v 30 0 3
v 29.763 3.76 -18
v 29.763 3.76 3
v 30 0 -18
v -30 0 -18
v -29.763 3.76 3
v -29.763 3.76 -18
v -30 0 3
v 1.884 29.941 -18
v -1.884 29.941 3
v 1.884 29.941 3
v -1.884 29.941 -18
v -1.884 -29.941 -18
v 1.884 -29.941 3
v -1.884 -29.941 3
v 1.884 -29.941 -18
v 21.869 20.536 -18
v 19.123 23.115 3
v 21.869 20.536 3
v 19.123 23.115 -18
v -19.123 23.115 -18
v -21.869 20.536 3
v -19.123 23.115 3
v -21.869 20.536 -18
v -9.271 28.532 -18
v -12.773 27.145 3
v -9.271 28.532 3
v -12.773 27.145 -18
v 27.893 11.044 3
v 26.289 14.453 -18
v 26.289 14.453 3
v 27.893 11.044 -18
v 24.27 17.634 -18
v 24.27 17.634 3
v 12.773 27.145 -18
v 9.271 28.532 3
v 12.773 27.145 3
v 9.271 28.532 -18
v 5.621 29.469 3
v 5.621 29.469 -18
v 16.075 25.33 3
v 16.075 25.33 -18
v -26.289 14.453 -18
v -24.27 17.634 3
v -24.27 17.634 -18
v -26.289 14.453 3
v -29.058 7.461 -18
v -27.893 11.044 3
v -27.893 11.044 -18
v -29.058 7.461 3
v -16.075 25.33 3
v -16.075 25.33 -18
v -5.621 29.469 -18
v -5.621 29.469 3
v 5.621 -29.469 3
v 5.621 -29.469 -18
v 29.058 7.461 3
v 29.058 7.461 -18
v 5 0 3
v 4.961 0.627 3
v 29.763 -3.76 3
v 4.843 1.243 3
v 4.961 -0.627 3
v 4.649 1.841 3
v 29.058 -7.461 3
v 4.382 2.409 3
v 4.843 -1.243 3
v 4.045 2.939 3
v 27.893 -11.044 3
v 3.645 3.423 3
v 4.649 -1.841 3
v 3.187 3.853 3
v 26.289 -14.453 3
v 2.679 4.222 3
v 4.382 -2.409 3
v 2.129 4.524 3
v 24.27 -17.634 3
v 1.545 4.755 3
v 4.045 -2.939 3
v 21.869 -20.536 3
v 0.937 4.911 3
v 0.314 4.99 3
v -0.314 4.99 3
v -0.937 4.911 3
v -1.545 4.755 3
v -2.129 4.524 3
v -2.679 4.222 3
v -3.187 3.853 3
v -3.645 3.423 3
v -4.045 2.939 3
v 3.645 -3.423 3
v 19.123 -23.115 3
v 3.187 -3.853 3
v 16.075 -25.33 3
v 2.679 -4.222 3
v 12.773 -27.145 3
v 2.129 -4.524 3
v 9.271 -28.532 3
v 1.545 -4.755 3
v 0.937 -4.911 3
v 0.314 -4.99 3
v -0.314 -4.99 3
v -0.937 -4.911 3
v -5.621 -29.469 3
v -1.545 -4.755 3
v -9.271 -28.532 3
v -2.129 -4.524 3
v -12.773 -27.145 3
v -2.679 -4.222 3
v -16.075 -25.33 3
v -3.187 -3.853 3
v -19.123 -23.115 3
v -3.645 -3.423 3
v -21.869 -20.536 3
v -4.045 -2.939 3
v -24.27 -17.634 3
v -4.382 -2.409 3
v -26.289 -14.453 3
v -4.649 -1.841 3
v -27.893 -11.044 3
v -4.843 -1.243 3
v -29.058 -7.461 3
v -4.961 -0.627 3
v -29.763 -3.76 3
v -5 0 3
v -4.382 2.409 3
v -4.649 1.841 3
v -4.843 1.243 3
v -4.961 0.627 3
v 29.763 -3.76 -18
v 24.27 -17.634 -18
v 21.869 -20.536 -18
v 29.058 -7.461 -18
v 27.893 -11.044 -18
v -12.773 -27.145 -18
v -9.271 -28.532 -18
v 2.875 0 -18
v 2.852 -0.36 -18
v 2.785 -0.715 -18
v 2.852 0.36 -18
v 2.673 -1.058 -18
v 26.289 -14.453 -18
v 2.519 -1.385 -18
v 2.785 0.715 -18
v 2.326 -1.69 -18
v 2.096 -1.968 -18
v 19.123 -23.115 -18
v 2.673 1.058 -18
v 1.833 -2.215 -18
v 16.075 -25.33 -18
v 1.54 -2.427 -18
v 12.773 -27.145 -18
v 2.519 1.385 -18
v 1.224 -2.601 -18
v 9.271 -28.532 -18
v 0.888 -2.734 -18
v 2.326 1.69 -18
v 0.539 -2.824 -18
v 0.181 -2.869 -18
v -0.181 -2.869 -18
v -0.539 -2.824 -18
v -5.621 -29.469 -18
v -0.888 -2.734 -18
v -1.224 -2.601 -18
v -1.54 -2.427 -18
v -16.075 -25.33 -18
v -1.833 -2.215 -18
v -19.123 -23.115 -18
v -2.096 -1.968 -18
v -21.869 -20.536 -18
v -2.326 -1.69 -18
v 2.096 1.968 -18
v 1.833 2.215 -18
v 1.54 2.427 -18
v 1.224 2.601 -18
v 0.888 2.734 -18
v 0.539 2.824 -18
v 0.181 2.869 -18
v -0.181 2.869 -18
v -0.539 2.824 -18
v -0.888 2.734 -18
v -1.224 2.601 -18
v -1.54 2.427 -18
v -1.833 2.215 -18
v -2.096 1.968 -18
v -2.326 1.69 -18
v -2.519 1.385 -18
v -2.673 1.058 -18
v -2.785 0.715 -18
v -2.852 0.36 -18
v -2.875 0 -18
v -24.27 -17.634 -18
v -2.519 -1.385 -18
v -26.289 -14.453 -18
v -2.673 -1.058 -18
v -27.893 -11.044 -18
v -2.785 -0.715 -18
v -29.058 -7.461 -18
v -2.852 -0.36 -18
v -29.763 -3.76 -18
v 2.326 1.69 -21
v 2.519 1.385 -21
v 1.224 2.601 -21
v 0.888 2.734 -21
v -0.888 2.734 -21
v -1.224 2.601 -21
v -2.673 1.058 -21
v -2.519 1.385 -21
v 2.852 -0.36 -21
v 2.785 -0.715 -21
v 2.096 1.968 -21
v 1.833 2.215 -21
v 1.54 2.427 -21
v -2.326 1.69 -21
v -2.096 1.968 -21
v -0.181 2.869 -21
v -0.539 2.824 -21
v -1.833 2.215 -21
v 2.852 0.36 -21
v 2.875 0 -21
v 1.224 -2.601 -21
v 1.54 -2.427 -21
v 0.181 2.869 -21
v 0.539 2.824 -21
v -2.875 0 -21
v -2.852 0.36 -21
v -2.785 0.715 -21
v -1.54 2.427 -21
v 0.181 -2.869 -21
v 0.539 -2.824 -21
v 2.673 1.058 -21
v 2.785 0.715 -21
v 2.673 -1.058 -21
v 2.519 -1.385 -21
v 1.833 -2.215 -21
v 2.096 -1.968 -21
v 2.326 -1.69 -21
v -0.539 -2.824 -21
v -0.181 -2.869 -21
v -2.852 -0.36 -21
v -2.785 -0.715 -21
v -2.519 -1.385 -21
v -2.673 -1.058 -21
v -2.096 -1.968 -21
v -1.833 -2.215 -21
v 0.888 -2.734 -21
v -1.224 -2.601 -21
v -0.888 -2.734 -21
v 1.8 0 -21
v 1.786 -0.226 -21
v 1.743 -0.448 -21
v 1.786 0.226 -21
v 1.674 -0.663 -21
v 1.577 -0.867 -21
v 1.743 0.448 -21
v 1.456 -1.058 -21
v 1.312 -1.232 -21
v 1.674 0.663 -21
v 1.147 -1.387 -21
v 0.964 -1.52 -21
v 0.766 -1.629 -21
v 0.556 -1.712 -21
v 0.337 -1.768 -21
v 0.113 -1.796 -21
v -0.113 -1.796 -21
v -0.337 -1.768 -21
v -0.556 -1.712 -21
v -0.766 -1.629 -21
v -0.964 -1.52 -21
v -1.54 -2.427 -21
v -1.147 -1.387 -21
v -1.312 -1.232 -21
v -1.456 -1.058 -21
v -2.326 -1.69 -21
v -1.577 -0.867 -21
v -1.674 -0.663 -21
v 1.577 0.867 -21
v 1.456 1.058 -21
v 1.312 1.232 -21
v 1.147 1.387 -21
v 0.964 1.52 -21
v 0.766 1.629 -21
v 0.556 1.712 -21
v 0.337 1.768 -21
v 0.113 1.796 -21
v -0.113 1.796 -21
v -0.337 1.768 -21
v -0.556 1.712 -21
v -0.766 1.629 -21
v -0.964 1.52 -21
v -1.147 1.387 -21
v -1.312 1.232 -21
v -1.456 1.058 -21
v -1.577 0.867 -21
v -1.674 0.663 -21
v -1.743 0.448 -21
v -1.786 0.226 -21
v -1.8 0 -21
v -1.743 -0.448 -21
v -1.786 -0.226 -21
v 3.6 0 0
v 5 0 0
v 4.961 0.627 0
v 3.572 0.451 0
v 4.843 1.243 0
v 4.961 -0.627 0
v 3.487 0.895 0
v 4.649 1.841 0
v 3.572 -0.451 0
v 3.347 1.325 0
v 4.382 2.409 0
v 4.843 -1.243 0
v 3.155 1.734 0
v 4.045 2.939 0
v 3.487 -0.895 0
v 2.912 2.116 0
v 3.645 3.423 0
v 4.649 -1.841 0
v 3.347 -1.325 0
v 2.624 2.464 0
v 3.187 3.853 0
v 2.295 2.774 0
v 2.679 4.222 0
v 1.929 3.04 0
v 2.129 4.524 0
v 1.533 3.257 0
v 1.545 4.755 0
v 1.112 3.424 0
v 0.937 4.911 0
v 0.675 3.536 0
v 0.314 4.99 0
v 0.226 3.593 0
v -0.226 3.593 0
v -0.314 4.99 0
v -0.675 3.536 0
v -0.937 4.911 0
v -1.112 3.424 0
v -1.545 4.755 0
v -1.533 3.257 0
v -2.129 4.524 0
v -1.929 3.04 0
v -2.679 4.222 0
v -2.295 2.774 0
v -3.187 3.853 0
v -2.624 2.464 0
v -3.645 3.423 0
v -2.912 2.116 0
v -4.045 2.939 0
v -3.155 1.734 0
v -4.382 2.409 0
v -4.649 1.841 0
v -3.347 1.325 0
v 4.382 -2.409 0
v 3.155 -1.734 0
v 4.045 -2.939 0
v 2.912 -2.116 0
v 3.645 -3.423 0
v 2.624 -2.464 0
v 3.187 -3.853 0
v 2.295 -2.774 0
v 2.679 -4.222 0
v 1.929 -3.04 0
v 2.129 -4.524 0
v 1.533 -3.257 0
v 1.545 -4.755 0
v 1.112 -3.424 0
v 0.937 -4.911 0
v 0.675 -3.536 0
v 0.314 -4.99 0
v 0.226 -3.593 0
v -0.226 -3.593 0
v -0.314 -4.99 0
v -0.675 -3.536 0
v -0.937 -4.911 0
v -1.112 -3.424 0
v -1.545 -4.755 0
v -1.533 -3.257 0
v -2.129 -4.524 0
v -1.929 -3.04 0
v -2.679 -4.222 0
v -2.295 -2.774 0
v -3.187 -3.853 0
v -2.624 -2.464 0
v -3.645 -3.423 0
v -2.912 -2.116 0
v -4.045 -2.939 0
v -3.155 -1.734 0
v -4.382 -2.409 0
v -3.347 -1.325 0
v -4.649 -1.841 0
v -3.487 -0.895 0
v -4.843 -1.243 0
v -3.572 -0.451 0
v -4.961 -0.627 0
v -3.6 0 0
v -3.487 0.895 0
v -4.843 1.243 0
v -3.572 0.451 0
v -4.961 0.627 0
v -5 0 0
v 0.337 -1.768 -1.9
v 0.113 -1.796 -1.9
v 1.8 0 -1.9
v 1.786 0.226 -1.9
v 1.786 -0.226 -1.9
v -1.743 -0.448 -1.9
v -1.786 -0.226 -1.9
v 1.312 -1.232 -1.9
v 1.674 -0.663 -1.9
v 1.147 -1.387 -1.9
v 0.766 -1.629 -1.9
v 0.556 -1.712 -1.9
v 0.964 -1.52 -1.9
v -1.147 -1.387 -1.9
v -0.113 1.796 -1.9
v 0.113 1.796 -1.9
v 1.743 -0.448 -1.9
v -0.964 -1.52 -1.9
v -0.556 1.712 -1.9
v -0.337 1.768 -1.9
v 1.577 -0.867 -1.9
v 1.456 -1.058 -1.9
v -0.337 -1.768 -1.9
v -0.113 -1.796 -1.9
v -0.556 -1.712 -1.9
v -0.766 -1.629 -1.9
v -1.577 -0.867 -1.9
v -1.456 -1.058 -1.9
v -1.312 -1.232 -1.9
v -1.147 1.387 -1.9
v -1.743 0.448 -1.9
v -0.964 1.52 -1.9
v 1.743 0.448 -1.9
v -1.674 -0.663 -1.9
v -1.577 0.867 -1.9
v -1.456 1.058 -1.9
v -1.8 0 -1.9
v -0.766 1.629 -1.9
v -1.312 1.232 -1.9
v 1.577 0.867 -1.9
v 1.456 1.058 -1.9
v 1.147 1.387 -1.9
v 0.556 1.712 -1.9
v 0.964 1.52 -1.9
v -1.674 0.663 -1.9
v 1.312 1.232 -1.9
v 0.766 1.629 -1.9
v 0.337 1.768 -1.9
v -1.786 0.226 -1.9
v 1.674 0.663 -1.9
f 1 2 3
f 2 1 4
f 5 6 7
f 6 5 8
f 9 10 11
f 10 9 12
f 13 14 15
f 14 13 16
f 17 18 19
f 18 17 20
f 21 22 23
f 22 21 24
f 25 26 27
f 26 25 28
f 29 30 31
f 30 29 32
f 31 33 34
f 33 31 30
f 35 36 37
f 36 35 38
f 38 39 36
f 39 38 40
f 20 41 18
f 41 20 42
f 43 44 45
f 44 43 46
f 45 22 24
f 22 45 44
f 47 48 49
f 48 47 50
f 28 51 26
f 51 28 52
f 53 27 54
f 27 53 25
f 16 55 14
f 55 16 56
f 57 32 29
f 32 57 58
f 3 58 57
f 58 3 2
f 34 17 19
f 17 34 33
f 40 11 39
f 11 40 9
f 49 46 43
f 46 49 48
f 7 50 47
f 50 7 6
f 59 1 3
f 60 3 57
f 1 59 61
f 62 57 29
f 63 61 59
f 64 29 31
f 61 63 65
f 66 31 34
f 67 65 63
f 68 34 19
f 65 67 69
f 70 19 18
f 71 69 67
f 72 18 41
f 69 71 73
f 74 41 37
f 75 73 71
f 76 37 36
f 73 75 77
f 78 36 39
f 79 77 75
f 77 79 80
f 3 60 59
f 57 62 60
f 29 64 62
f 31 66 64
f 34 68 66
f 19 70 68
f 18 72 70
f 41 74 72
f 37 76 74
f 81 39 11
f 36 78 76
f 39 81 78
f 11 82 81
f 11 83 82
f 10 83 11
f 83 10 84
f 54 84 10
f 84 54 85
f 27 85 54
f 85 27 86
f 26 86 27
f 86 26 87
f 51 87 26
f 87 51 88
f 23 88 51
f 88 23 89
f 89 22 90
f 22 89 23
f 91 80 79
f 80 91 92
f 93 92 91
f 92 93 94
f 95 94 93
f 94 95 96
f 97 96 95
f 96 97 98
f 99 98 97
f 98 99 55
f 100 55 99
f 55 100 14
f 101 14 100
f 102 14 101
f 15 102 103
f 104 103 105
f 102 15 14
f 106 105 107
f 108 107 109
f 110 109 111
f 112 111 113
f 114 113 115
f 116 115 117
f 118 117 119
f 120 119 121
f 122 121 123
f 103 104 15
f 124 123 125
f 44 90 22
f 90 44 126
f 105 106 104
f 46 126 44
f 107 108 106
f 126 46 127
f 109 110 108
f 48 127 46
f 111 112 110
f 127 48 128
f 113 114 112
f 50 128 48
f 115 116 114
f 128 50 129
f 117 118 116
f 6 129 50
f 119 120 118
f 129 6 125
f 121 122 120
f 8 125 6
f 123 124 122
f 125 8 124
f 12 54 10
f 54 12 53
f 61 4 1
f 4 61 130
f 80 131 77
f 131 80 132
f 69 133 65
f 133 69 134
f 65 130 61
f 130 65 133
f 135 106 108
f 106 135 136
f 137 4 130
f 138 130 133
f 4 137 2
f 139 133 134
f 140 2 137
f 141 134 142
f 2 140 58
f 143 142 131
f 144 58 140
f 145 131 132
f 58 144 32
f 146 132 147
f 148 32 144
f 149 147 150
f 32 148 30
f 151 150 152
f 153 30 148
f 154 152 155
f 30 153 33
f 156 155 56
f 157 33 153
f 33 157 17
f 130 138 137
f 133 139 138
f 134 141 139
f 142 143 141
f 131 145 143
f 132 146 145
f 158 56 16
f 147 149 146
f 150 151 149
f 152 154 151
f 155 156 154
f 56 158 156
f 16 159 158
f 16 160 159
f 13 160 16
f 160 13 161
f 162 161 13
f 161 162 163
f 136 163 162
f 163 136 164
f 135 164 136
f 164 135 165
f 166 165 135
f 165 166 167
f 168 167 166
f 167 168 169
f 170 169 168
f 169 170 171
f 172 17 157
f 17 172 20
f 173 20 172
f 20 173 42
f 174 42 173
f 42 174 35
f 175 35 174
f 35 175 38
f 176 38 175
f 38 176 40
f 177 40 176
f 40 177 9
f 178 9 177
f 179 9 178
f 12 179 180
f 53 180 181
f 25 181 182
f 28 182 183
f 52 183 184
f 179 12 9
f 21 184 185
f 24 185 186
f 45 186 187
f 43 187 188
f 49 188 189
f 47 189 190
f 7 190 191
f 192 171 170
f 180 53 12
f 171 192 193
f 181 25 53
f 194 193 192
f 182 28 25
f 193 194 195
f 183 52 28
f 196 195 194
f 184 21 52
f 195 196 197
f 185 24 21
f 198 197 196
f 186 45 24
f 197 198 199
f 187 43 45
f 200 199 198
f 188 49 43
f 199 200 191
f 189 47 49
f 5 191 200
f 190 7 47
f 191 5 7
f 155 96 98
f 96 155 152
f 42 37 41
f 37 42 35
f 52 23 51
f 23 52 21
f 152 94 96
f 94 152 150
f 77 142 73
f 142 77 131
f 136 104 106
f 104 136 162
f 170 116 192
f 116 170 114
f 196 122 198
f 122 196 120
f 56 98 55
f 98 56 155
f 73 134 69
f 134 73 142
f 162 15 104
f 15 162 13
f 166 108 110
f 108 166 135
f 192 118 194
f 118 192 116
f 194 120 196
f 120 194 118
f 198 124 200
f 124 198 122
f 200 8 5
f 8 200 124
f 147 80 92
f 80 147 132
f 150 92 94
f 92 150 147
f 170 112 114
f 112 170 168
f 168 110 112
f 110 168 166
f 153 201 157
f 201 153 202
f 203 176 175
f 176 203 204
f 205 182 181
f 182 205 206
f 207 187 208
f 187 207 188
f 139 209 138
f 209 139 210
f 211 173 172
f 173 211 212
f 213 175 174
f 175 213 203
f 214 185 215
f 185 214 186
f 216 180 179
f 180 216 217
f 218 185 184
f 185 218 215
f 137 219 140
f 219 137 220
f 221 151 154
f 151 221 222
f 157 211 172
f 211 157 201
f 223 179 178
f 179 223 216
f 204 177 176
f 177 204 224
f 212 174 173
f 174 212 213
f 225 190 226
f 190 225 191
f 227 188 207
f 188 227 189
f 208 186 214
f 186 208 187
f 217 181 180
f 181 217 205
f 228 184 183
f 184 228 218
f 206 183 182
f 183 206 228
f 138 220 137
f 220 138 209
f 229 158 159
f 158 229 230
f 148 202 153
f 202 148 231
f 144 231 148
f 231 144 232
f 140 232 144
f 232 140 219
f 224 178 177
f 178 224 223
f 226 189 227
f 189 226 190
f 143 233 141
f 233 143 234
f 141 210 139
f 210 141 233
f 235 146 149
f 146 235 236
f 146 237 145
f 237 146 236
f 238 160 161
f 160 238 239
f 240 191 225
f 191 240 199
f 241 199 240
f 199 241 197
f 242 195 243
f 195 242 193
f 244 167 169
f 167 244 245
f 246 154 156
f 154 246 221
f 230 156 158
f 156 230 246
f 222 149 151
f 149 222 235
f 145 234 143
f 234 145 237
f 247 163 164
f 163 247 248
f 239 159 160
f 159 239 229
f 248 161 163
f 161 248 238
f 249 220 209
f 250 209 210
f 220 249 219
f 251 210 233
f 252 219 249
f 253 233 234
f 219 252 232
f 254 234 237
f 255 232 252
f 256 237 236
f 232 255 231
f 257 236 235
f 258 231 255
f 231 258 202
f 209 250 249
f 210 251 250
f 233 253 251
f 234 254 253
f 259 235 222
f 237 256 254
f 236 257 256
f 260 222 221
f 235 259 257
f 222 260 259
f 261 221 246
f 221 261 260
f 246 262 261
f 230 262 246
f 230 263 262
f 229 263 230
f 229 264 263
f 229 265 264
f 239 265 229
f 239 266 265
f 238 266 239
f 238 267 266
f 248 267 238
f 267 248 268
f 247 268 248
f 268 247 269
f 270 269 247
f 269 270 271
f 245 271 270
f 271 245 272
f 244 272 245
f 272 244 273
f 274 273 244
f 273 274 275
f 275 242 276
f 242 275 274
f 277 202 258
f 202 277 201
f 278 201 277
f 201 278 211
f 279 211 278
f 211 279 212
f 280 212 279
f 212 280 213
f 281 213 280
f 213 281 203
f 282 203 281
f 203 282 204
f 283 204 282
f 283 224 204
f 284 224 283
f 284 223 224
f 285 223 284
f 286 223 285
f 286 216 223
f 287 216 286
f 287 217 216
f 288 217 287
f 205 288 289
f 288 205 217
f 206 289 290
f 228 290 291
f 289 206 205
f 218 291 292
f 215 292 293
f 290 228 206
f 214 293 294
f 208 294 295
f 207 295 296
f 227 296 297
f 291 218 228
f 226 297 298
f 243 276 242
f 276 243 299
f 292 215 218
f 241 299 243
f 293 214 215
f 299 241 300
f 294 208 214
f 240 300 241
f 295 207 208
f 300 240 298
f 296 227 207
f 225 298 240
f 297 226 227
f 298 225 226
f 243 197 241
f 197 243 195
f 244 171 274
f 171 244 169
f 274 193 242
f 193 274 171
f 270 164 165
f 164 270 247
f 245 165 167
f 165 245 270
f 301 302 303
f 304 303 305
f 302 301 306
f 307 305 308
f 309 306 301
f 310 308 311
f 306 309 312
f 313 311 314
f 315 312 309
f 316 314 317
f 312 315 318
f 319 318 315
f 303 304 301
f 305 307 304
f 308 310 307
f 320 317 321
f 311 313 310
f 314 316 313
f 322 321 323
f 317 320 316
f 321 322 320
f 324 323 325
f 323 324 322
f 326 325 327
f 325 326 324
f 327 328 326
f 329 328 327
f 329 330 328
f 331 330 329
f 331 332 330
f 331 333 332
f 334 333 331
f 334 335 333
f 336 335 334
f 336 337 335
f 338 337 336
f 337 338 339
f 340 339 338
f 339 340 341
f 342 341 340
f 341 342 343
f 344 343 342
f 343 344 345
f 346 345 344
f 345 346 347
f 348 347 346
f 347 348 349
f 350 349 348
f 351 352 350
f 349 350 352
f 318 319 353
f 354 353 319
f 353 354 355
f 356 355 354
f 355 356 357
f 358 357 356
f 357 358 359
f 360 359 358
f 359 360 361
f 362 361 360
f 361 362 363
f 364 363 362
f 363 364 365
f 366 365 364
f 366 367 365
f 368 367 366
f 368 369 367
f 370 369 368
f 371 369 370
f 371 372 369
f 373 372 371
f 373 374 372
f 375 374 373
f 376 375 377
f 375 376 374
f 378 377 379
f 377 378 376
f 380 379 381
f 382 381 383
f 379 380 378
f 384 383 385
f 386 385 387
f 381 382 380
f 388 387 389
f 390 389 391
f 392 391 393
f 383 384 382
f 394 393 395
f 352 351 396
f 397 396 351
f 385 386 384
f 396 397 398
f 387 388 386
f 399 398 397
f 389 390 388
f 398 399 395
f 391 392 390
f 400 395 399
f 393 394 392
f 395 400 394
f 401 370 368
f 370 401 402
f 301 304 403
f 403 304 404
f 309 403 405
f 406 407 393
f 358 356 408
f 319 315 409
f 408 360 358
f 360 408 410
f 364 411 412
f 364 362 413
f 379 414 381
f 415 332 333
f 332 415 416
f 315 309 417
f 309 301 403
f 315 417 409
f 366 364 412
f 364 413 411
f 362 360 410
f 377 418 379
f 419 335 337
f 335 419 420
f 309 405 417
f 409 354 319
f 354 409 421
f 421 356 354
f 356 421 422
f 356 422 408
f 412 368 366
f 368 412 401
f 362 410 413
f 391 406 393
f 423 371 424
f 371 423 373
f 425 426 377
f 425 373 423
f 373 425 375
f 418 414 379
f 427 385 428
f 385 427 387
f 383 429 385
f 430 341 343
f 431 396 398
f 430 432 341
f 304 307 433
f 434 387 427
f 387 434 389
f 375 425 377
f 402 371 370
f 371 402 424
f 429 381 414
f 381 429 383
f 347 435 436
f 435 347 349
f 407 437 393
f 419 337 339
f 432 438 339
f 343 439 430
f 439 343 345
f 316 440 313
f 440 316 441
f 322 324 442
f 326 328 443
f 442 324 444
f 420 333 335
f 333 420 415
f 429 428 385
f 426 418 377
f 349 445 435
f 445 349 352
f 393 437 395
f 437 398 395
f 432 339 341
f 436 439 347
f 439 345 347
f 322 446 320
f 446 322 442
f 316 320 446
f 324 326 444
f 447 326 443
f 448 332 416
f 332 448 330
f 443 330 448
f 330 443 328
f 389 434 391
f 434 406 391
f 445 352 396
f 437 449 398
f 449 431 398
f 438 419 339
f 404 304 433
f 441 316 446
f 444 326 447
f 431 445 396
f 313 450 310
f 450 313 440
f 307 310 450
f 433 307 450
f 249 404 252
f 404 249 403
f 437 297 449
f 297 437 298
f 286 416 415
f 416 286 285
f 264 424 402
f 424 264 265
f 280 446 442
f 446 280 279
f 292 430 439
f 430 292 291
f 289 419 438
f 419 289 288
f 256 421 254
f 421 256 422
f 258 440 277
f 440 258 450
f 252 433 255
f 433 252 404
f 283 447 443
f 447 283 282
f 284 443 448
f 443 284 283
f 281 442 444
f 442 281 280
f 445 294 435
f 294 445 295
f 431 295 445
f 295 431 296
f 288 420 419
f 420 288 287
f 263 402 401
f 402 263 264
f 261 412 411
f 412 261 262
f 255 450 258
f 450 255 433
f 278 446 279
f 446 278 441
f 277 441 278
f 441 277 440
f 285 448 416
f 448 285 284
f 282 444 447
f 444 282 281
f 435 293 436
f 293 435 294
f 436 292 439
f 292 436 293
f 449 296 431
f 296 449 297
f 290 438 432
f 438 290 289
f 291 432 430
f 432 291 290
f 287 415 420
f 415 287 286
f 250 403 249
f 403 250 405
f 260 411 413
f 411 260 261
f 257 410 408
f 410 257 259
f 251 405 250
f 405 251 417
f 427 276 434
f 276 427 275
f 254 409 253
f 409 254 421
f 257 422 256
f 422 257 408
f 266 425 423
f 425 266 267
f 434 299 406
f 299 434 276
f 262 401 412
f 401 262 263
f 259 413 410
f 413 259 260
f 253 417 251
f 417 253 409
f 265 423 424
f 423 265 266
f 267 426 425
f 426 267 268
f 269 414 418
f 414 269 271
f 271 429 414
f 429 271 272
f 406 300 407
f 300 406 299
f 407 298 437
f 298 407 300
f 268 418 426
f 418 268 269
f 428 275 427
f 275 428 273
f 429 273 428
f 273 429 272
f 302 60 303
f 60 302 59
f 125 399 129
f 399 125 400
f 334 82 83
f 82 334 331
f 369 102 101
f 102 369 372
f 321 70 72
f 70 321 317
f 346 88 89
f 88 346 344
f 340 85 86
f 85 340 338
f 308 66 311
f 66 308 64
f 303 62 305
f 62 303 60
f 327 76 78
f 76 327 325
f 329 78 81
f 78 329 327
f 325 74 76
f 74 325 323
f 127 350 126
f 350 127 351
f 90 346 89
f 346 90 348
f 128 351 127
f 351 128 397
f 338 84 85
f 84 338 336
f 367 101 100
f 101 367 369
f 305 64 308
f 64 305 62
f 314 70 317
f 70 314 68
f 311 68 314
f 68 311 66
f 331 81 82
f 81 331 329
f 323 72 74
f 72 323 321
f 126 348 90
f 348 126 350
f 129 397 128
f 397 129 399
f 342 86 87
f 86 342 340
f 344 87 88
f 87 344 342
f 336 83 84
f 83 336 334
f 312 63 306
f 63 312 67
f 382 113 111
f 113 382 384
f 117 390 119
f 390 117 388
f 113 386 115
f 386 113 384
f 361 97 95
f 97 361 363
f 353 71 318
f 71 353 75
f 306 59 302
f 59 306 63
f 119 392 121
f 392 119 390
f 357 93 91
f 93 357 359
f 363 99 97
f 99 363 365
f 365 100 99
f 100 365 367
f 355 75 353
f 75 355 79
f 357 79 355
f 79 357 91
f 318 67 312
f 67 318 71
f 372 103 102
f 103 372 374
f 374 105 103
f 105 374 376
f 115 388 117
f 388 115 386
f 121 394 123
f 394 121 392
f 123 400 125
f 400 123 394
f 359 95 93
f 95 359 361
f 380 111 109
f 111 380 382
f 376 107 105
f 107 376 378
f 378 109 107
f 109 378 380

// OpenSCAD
$fn = 50;

difference() {
	union() {
		translate(v = [0, 0, -18.0]) {
			cylinder(h = 21, r = 30.0);
		}
		#translate(v = [0, 0, -21.0]) {
			cylinder(h = 21, r = 2.875);
		}
	}
	union() {
		translate(v = [0, 0, 0]) {
			rotate(a = [0, 0, 0]) {
				difference() {
					union() {
						translate(v = [0, 0, -21.0]) {
							cylinder(h = 21, r = 1.5);
						}
						translate(v = [0, 0, -1.9]) {
							cylinder(h = 1.9, r1 = 1.8, r2 = 3.6);
						}
						translate(v = [0, 0, -21.0]) {
							cylinder(h = 21, r = 1.8);
						}
						translate(v = [0, 0, -21.0]) {
							cylinder(h = 21, r = 1.5);
						}
					}
					union();
				}
			}
		}
		#cylinder(h = 3, r = 5.0);
	}
}
